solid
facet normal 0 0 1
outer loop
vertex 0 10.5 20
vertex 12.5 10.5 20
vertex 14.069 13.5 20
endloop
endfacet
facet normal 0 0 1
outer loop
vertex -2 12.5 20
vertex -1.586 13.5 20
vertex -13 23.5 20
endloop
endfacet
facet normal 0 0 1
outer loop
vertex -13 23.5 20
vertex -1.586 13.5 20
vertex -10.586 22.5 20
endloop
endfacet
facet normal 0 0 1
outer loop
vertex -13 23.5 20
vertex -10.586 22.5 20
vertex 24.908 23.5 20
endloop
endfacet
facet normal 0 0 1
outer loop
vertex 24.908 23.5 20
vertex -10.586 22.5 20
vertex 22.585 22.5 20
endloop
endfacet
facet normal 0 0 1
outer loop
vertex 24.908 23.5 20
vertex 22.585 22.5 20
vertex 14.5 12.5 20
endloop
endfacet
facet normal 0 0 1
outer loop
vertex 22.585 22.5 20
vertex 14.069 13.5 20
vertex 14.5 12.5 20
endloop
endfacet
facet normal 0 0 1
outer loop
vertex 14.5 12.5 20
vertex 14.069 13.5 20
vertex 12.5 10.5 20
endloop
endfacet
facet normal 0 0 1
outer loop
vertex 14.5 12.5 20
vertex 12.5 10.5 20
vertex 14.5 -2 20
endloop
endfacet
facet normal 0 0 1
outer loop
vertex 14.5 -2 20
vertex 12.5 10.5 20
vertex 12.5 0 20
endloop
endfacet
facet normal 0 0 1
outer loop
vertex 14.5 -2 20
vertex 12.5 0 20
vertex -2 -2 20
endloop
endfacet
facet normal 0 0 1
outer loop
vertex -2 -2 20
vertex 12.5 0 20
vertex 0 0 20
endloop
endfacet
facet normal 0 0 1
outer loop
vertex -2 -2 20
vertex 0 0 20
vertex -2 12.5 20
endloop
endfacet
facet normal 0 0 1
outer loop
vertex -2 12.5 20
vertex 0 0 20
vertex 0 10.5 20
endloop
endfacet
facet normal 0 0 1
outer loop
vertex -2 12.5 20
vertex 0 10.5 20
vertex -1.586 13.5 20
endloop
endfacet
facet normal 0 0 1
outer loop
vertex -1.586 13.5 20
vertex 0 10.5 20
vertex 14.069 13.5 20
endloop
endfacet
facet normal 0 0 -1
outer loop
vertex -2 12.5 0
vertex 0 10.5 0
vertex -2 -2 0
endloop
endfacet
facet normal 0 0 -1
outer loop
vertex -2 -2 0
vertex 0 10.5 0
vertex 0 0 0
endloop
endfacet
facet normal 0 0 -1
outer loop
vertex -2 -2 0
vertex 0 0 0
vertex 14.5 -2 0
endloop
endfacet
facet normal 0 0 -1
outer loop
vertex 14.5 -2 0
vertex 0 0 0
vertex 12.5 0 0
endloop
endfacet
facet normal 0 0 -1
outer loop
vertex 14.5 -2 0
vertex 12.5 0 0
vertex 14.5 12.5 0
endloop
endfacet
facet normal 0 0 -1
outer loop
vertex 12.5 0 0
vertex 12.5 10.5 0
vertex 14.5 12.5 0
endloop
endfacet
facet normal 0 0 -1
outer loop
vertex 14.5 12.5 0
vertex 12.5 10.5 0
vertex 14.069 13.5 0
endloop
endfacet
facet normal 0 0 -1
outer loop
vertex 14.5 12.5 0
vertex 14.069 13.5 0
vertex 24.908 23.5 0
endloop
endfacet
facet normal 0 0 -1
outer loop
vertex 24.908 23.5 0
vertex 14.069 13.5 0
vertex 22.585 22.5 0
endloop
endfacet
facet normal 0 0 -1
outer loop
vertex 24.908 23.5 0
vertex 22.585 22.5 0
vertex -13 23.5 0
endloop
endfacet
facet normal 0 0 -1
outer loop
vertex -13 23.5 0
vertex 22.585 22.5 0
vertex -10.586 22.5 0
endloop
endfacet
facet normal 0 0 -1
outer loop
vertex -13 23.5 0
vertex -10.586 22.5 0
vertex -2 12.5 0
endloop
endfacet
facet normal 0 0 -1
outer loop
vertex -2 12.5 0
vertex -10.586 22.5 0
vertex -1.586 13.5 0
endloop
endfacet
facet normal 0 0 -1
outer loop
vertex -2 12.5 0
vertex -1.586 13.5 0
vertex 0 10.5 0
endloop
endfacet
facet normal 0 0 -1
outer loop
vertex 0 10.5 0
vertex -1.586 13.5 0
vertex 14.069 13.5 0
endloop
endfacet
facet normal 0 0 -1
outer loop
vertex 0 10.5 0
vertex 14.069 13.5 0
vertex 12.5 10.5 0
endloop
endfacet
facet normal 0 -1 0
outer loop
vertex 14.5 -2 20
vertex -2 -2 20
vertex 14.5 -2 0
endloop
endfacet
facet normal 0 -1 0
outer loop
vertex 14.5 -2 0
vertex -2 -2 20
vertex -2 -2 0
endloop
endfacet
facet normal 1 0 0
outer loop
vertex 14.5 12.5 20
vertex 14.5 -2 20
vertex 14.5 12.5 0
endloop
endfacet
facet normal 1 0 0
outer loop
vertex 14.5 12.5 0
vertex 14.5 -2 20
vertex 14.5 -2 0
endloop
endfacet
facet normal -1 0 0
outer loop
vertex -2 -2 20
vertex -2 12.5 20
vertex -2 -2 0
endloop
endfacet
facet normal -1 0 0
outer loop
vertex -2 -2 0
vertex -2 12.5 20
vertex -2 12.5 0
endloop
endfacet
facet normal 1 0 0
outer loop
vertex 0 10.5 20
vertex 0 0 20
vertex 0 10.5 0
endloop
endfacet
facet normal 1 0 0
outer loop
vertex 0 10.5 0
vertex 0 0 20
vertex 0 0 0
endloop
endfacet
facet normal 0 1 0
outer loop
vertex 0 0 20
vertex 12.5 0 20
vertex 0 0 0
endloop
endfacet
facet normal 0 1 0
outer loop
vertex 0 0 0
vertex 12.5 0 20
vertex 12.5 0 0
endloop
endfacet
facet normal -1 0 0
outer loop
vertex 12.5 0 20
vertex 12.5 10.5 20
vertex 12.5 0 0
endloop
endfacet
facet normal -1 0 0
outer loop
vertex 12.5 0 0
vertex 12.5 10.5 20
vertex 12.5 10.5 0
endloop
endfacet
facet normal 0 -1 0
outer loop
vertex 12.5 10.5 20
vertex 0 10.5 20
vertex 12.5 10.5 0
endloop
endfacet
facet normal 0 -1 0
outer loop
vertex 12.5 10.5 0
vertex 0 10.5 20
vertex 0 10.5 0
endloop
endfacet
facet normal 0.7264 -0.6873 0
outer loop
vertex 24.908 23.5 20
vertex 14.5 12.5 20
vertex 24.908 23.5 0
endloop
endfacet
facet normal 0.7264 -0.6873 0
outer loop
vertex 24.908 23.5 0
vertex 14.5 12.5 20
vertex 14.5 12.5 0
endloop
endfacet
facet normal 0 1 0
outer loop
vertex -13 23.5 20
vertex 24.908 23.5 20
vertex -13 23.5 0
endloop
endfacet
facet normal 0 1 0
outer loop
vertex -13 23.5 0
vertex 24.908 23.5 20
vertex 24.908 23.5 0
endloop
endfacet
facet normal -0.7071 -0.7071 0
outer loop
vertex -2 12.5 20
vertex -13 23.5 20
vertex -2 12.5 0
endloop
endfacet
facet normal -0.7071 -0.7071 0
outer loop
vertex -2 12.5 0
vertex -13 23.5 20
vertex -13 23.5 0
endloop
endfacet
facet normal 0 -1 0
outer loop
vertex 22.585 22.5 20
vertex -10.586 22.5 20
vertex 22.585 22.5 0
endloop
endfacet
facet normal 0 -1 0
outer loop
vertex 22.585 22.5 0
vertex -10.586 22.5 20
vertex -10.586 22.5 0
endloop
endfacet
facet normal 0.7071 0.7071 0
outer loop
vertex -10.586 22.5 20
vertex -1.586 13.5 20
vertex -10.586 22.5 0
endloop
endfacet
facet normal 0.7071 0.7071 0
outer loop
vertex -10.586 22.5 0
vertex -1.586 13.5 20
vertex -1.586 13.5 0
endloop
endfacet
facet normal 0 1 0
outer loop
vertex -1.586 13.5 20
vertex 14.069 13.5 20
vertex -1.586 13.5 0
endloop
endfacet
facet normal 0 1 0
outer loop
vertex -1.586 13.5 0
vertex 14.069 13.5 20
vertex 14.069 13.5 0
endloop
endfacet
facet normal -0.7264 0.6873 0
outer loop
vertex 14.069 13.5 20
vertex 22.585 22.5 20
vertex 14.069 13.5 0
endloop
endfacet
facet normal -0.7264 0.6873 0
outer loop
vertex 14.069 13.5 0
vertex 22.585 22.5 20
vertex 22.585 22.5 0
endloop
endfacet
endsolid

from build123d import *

# Parameters (mm, degrees)
SKETCH1_W           = 16.5
SKETCH1_H           = 14.5
SKETCH1_W_2         = 12.5
SKETCH1_H_2         = 10.5
BOSS_EXTRUDE1_DEPTH = 20
BOSS_EXTRUDE2_DEPTH = 20


with BuildPart() as part:
    # Sketch1 → Boss-Extrude1 (new body)
    with BuildSketch(Plane.XY):
        with Locations((6.25, 5.25)):
            Rectangle(SKETCH1_W, SKETCH1_H)
        with Locations((6.25, 5.25)):
            Rectangle(SKETCH1_W_2, SKETCH1_H_2, mode=Mode.SUBTRACT)
    extrude(amount=BOSS_EXTRUDE1_DEPTH)

    # Sketch2 → Boss-Extrude2 (add)
    with BuildSketch(Plane(origin=(0, 0, 0), x_dir=(-1, 0, 0), z_dir=(0, 0, -1))):
        Polygon((2, 12.5), (13, 23.5), (-24.907922473, 23.5), (-14.5, 12.5), align=None)
        Polygon((-22.585068112, 22.5), (-14.069495179, 13.5), (1.585786438, 13.5), (10.585786438, 22.5), align=None, mode=Mode.SUBTRACT)
    extrude(amount=-BOSS_EXTRUDE2_DEPTH)


solid = part.part
